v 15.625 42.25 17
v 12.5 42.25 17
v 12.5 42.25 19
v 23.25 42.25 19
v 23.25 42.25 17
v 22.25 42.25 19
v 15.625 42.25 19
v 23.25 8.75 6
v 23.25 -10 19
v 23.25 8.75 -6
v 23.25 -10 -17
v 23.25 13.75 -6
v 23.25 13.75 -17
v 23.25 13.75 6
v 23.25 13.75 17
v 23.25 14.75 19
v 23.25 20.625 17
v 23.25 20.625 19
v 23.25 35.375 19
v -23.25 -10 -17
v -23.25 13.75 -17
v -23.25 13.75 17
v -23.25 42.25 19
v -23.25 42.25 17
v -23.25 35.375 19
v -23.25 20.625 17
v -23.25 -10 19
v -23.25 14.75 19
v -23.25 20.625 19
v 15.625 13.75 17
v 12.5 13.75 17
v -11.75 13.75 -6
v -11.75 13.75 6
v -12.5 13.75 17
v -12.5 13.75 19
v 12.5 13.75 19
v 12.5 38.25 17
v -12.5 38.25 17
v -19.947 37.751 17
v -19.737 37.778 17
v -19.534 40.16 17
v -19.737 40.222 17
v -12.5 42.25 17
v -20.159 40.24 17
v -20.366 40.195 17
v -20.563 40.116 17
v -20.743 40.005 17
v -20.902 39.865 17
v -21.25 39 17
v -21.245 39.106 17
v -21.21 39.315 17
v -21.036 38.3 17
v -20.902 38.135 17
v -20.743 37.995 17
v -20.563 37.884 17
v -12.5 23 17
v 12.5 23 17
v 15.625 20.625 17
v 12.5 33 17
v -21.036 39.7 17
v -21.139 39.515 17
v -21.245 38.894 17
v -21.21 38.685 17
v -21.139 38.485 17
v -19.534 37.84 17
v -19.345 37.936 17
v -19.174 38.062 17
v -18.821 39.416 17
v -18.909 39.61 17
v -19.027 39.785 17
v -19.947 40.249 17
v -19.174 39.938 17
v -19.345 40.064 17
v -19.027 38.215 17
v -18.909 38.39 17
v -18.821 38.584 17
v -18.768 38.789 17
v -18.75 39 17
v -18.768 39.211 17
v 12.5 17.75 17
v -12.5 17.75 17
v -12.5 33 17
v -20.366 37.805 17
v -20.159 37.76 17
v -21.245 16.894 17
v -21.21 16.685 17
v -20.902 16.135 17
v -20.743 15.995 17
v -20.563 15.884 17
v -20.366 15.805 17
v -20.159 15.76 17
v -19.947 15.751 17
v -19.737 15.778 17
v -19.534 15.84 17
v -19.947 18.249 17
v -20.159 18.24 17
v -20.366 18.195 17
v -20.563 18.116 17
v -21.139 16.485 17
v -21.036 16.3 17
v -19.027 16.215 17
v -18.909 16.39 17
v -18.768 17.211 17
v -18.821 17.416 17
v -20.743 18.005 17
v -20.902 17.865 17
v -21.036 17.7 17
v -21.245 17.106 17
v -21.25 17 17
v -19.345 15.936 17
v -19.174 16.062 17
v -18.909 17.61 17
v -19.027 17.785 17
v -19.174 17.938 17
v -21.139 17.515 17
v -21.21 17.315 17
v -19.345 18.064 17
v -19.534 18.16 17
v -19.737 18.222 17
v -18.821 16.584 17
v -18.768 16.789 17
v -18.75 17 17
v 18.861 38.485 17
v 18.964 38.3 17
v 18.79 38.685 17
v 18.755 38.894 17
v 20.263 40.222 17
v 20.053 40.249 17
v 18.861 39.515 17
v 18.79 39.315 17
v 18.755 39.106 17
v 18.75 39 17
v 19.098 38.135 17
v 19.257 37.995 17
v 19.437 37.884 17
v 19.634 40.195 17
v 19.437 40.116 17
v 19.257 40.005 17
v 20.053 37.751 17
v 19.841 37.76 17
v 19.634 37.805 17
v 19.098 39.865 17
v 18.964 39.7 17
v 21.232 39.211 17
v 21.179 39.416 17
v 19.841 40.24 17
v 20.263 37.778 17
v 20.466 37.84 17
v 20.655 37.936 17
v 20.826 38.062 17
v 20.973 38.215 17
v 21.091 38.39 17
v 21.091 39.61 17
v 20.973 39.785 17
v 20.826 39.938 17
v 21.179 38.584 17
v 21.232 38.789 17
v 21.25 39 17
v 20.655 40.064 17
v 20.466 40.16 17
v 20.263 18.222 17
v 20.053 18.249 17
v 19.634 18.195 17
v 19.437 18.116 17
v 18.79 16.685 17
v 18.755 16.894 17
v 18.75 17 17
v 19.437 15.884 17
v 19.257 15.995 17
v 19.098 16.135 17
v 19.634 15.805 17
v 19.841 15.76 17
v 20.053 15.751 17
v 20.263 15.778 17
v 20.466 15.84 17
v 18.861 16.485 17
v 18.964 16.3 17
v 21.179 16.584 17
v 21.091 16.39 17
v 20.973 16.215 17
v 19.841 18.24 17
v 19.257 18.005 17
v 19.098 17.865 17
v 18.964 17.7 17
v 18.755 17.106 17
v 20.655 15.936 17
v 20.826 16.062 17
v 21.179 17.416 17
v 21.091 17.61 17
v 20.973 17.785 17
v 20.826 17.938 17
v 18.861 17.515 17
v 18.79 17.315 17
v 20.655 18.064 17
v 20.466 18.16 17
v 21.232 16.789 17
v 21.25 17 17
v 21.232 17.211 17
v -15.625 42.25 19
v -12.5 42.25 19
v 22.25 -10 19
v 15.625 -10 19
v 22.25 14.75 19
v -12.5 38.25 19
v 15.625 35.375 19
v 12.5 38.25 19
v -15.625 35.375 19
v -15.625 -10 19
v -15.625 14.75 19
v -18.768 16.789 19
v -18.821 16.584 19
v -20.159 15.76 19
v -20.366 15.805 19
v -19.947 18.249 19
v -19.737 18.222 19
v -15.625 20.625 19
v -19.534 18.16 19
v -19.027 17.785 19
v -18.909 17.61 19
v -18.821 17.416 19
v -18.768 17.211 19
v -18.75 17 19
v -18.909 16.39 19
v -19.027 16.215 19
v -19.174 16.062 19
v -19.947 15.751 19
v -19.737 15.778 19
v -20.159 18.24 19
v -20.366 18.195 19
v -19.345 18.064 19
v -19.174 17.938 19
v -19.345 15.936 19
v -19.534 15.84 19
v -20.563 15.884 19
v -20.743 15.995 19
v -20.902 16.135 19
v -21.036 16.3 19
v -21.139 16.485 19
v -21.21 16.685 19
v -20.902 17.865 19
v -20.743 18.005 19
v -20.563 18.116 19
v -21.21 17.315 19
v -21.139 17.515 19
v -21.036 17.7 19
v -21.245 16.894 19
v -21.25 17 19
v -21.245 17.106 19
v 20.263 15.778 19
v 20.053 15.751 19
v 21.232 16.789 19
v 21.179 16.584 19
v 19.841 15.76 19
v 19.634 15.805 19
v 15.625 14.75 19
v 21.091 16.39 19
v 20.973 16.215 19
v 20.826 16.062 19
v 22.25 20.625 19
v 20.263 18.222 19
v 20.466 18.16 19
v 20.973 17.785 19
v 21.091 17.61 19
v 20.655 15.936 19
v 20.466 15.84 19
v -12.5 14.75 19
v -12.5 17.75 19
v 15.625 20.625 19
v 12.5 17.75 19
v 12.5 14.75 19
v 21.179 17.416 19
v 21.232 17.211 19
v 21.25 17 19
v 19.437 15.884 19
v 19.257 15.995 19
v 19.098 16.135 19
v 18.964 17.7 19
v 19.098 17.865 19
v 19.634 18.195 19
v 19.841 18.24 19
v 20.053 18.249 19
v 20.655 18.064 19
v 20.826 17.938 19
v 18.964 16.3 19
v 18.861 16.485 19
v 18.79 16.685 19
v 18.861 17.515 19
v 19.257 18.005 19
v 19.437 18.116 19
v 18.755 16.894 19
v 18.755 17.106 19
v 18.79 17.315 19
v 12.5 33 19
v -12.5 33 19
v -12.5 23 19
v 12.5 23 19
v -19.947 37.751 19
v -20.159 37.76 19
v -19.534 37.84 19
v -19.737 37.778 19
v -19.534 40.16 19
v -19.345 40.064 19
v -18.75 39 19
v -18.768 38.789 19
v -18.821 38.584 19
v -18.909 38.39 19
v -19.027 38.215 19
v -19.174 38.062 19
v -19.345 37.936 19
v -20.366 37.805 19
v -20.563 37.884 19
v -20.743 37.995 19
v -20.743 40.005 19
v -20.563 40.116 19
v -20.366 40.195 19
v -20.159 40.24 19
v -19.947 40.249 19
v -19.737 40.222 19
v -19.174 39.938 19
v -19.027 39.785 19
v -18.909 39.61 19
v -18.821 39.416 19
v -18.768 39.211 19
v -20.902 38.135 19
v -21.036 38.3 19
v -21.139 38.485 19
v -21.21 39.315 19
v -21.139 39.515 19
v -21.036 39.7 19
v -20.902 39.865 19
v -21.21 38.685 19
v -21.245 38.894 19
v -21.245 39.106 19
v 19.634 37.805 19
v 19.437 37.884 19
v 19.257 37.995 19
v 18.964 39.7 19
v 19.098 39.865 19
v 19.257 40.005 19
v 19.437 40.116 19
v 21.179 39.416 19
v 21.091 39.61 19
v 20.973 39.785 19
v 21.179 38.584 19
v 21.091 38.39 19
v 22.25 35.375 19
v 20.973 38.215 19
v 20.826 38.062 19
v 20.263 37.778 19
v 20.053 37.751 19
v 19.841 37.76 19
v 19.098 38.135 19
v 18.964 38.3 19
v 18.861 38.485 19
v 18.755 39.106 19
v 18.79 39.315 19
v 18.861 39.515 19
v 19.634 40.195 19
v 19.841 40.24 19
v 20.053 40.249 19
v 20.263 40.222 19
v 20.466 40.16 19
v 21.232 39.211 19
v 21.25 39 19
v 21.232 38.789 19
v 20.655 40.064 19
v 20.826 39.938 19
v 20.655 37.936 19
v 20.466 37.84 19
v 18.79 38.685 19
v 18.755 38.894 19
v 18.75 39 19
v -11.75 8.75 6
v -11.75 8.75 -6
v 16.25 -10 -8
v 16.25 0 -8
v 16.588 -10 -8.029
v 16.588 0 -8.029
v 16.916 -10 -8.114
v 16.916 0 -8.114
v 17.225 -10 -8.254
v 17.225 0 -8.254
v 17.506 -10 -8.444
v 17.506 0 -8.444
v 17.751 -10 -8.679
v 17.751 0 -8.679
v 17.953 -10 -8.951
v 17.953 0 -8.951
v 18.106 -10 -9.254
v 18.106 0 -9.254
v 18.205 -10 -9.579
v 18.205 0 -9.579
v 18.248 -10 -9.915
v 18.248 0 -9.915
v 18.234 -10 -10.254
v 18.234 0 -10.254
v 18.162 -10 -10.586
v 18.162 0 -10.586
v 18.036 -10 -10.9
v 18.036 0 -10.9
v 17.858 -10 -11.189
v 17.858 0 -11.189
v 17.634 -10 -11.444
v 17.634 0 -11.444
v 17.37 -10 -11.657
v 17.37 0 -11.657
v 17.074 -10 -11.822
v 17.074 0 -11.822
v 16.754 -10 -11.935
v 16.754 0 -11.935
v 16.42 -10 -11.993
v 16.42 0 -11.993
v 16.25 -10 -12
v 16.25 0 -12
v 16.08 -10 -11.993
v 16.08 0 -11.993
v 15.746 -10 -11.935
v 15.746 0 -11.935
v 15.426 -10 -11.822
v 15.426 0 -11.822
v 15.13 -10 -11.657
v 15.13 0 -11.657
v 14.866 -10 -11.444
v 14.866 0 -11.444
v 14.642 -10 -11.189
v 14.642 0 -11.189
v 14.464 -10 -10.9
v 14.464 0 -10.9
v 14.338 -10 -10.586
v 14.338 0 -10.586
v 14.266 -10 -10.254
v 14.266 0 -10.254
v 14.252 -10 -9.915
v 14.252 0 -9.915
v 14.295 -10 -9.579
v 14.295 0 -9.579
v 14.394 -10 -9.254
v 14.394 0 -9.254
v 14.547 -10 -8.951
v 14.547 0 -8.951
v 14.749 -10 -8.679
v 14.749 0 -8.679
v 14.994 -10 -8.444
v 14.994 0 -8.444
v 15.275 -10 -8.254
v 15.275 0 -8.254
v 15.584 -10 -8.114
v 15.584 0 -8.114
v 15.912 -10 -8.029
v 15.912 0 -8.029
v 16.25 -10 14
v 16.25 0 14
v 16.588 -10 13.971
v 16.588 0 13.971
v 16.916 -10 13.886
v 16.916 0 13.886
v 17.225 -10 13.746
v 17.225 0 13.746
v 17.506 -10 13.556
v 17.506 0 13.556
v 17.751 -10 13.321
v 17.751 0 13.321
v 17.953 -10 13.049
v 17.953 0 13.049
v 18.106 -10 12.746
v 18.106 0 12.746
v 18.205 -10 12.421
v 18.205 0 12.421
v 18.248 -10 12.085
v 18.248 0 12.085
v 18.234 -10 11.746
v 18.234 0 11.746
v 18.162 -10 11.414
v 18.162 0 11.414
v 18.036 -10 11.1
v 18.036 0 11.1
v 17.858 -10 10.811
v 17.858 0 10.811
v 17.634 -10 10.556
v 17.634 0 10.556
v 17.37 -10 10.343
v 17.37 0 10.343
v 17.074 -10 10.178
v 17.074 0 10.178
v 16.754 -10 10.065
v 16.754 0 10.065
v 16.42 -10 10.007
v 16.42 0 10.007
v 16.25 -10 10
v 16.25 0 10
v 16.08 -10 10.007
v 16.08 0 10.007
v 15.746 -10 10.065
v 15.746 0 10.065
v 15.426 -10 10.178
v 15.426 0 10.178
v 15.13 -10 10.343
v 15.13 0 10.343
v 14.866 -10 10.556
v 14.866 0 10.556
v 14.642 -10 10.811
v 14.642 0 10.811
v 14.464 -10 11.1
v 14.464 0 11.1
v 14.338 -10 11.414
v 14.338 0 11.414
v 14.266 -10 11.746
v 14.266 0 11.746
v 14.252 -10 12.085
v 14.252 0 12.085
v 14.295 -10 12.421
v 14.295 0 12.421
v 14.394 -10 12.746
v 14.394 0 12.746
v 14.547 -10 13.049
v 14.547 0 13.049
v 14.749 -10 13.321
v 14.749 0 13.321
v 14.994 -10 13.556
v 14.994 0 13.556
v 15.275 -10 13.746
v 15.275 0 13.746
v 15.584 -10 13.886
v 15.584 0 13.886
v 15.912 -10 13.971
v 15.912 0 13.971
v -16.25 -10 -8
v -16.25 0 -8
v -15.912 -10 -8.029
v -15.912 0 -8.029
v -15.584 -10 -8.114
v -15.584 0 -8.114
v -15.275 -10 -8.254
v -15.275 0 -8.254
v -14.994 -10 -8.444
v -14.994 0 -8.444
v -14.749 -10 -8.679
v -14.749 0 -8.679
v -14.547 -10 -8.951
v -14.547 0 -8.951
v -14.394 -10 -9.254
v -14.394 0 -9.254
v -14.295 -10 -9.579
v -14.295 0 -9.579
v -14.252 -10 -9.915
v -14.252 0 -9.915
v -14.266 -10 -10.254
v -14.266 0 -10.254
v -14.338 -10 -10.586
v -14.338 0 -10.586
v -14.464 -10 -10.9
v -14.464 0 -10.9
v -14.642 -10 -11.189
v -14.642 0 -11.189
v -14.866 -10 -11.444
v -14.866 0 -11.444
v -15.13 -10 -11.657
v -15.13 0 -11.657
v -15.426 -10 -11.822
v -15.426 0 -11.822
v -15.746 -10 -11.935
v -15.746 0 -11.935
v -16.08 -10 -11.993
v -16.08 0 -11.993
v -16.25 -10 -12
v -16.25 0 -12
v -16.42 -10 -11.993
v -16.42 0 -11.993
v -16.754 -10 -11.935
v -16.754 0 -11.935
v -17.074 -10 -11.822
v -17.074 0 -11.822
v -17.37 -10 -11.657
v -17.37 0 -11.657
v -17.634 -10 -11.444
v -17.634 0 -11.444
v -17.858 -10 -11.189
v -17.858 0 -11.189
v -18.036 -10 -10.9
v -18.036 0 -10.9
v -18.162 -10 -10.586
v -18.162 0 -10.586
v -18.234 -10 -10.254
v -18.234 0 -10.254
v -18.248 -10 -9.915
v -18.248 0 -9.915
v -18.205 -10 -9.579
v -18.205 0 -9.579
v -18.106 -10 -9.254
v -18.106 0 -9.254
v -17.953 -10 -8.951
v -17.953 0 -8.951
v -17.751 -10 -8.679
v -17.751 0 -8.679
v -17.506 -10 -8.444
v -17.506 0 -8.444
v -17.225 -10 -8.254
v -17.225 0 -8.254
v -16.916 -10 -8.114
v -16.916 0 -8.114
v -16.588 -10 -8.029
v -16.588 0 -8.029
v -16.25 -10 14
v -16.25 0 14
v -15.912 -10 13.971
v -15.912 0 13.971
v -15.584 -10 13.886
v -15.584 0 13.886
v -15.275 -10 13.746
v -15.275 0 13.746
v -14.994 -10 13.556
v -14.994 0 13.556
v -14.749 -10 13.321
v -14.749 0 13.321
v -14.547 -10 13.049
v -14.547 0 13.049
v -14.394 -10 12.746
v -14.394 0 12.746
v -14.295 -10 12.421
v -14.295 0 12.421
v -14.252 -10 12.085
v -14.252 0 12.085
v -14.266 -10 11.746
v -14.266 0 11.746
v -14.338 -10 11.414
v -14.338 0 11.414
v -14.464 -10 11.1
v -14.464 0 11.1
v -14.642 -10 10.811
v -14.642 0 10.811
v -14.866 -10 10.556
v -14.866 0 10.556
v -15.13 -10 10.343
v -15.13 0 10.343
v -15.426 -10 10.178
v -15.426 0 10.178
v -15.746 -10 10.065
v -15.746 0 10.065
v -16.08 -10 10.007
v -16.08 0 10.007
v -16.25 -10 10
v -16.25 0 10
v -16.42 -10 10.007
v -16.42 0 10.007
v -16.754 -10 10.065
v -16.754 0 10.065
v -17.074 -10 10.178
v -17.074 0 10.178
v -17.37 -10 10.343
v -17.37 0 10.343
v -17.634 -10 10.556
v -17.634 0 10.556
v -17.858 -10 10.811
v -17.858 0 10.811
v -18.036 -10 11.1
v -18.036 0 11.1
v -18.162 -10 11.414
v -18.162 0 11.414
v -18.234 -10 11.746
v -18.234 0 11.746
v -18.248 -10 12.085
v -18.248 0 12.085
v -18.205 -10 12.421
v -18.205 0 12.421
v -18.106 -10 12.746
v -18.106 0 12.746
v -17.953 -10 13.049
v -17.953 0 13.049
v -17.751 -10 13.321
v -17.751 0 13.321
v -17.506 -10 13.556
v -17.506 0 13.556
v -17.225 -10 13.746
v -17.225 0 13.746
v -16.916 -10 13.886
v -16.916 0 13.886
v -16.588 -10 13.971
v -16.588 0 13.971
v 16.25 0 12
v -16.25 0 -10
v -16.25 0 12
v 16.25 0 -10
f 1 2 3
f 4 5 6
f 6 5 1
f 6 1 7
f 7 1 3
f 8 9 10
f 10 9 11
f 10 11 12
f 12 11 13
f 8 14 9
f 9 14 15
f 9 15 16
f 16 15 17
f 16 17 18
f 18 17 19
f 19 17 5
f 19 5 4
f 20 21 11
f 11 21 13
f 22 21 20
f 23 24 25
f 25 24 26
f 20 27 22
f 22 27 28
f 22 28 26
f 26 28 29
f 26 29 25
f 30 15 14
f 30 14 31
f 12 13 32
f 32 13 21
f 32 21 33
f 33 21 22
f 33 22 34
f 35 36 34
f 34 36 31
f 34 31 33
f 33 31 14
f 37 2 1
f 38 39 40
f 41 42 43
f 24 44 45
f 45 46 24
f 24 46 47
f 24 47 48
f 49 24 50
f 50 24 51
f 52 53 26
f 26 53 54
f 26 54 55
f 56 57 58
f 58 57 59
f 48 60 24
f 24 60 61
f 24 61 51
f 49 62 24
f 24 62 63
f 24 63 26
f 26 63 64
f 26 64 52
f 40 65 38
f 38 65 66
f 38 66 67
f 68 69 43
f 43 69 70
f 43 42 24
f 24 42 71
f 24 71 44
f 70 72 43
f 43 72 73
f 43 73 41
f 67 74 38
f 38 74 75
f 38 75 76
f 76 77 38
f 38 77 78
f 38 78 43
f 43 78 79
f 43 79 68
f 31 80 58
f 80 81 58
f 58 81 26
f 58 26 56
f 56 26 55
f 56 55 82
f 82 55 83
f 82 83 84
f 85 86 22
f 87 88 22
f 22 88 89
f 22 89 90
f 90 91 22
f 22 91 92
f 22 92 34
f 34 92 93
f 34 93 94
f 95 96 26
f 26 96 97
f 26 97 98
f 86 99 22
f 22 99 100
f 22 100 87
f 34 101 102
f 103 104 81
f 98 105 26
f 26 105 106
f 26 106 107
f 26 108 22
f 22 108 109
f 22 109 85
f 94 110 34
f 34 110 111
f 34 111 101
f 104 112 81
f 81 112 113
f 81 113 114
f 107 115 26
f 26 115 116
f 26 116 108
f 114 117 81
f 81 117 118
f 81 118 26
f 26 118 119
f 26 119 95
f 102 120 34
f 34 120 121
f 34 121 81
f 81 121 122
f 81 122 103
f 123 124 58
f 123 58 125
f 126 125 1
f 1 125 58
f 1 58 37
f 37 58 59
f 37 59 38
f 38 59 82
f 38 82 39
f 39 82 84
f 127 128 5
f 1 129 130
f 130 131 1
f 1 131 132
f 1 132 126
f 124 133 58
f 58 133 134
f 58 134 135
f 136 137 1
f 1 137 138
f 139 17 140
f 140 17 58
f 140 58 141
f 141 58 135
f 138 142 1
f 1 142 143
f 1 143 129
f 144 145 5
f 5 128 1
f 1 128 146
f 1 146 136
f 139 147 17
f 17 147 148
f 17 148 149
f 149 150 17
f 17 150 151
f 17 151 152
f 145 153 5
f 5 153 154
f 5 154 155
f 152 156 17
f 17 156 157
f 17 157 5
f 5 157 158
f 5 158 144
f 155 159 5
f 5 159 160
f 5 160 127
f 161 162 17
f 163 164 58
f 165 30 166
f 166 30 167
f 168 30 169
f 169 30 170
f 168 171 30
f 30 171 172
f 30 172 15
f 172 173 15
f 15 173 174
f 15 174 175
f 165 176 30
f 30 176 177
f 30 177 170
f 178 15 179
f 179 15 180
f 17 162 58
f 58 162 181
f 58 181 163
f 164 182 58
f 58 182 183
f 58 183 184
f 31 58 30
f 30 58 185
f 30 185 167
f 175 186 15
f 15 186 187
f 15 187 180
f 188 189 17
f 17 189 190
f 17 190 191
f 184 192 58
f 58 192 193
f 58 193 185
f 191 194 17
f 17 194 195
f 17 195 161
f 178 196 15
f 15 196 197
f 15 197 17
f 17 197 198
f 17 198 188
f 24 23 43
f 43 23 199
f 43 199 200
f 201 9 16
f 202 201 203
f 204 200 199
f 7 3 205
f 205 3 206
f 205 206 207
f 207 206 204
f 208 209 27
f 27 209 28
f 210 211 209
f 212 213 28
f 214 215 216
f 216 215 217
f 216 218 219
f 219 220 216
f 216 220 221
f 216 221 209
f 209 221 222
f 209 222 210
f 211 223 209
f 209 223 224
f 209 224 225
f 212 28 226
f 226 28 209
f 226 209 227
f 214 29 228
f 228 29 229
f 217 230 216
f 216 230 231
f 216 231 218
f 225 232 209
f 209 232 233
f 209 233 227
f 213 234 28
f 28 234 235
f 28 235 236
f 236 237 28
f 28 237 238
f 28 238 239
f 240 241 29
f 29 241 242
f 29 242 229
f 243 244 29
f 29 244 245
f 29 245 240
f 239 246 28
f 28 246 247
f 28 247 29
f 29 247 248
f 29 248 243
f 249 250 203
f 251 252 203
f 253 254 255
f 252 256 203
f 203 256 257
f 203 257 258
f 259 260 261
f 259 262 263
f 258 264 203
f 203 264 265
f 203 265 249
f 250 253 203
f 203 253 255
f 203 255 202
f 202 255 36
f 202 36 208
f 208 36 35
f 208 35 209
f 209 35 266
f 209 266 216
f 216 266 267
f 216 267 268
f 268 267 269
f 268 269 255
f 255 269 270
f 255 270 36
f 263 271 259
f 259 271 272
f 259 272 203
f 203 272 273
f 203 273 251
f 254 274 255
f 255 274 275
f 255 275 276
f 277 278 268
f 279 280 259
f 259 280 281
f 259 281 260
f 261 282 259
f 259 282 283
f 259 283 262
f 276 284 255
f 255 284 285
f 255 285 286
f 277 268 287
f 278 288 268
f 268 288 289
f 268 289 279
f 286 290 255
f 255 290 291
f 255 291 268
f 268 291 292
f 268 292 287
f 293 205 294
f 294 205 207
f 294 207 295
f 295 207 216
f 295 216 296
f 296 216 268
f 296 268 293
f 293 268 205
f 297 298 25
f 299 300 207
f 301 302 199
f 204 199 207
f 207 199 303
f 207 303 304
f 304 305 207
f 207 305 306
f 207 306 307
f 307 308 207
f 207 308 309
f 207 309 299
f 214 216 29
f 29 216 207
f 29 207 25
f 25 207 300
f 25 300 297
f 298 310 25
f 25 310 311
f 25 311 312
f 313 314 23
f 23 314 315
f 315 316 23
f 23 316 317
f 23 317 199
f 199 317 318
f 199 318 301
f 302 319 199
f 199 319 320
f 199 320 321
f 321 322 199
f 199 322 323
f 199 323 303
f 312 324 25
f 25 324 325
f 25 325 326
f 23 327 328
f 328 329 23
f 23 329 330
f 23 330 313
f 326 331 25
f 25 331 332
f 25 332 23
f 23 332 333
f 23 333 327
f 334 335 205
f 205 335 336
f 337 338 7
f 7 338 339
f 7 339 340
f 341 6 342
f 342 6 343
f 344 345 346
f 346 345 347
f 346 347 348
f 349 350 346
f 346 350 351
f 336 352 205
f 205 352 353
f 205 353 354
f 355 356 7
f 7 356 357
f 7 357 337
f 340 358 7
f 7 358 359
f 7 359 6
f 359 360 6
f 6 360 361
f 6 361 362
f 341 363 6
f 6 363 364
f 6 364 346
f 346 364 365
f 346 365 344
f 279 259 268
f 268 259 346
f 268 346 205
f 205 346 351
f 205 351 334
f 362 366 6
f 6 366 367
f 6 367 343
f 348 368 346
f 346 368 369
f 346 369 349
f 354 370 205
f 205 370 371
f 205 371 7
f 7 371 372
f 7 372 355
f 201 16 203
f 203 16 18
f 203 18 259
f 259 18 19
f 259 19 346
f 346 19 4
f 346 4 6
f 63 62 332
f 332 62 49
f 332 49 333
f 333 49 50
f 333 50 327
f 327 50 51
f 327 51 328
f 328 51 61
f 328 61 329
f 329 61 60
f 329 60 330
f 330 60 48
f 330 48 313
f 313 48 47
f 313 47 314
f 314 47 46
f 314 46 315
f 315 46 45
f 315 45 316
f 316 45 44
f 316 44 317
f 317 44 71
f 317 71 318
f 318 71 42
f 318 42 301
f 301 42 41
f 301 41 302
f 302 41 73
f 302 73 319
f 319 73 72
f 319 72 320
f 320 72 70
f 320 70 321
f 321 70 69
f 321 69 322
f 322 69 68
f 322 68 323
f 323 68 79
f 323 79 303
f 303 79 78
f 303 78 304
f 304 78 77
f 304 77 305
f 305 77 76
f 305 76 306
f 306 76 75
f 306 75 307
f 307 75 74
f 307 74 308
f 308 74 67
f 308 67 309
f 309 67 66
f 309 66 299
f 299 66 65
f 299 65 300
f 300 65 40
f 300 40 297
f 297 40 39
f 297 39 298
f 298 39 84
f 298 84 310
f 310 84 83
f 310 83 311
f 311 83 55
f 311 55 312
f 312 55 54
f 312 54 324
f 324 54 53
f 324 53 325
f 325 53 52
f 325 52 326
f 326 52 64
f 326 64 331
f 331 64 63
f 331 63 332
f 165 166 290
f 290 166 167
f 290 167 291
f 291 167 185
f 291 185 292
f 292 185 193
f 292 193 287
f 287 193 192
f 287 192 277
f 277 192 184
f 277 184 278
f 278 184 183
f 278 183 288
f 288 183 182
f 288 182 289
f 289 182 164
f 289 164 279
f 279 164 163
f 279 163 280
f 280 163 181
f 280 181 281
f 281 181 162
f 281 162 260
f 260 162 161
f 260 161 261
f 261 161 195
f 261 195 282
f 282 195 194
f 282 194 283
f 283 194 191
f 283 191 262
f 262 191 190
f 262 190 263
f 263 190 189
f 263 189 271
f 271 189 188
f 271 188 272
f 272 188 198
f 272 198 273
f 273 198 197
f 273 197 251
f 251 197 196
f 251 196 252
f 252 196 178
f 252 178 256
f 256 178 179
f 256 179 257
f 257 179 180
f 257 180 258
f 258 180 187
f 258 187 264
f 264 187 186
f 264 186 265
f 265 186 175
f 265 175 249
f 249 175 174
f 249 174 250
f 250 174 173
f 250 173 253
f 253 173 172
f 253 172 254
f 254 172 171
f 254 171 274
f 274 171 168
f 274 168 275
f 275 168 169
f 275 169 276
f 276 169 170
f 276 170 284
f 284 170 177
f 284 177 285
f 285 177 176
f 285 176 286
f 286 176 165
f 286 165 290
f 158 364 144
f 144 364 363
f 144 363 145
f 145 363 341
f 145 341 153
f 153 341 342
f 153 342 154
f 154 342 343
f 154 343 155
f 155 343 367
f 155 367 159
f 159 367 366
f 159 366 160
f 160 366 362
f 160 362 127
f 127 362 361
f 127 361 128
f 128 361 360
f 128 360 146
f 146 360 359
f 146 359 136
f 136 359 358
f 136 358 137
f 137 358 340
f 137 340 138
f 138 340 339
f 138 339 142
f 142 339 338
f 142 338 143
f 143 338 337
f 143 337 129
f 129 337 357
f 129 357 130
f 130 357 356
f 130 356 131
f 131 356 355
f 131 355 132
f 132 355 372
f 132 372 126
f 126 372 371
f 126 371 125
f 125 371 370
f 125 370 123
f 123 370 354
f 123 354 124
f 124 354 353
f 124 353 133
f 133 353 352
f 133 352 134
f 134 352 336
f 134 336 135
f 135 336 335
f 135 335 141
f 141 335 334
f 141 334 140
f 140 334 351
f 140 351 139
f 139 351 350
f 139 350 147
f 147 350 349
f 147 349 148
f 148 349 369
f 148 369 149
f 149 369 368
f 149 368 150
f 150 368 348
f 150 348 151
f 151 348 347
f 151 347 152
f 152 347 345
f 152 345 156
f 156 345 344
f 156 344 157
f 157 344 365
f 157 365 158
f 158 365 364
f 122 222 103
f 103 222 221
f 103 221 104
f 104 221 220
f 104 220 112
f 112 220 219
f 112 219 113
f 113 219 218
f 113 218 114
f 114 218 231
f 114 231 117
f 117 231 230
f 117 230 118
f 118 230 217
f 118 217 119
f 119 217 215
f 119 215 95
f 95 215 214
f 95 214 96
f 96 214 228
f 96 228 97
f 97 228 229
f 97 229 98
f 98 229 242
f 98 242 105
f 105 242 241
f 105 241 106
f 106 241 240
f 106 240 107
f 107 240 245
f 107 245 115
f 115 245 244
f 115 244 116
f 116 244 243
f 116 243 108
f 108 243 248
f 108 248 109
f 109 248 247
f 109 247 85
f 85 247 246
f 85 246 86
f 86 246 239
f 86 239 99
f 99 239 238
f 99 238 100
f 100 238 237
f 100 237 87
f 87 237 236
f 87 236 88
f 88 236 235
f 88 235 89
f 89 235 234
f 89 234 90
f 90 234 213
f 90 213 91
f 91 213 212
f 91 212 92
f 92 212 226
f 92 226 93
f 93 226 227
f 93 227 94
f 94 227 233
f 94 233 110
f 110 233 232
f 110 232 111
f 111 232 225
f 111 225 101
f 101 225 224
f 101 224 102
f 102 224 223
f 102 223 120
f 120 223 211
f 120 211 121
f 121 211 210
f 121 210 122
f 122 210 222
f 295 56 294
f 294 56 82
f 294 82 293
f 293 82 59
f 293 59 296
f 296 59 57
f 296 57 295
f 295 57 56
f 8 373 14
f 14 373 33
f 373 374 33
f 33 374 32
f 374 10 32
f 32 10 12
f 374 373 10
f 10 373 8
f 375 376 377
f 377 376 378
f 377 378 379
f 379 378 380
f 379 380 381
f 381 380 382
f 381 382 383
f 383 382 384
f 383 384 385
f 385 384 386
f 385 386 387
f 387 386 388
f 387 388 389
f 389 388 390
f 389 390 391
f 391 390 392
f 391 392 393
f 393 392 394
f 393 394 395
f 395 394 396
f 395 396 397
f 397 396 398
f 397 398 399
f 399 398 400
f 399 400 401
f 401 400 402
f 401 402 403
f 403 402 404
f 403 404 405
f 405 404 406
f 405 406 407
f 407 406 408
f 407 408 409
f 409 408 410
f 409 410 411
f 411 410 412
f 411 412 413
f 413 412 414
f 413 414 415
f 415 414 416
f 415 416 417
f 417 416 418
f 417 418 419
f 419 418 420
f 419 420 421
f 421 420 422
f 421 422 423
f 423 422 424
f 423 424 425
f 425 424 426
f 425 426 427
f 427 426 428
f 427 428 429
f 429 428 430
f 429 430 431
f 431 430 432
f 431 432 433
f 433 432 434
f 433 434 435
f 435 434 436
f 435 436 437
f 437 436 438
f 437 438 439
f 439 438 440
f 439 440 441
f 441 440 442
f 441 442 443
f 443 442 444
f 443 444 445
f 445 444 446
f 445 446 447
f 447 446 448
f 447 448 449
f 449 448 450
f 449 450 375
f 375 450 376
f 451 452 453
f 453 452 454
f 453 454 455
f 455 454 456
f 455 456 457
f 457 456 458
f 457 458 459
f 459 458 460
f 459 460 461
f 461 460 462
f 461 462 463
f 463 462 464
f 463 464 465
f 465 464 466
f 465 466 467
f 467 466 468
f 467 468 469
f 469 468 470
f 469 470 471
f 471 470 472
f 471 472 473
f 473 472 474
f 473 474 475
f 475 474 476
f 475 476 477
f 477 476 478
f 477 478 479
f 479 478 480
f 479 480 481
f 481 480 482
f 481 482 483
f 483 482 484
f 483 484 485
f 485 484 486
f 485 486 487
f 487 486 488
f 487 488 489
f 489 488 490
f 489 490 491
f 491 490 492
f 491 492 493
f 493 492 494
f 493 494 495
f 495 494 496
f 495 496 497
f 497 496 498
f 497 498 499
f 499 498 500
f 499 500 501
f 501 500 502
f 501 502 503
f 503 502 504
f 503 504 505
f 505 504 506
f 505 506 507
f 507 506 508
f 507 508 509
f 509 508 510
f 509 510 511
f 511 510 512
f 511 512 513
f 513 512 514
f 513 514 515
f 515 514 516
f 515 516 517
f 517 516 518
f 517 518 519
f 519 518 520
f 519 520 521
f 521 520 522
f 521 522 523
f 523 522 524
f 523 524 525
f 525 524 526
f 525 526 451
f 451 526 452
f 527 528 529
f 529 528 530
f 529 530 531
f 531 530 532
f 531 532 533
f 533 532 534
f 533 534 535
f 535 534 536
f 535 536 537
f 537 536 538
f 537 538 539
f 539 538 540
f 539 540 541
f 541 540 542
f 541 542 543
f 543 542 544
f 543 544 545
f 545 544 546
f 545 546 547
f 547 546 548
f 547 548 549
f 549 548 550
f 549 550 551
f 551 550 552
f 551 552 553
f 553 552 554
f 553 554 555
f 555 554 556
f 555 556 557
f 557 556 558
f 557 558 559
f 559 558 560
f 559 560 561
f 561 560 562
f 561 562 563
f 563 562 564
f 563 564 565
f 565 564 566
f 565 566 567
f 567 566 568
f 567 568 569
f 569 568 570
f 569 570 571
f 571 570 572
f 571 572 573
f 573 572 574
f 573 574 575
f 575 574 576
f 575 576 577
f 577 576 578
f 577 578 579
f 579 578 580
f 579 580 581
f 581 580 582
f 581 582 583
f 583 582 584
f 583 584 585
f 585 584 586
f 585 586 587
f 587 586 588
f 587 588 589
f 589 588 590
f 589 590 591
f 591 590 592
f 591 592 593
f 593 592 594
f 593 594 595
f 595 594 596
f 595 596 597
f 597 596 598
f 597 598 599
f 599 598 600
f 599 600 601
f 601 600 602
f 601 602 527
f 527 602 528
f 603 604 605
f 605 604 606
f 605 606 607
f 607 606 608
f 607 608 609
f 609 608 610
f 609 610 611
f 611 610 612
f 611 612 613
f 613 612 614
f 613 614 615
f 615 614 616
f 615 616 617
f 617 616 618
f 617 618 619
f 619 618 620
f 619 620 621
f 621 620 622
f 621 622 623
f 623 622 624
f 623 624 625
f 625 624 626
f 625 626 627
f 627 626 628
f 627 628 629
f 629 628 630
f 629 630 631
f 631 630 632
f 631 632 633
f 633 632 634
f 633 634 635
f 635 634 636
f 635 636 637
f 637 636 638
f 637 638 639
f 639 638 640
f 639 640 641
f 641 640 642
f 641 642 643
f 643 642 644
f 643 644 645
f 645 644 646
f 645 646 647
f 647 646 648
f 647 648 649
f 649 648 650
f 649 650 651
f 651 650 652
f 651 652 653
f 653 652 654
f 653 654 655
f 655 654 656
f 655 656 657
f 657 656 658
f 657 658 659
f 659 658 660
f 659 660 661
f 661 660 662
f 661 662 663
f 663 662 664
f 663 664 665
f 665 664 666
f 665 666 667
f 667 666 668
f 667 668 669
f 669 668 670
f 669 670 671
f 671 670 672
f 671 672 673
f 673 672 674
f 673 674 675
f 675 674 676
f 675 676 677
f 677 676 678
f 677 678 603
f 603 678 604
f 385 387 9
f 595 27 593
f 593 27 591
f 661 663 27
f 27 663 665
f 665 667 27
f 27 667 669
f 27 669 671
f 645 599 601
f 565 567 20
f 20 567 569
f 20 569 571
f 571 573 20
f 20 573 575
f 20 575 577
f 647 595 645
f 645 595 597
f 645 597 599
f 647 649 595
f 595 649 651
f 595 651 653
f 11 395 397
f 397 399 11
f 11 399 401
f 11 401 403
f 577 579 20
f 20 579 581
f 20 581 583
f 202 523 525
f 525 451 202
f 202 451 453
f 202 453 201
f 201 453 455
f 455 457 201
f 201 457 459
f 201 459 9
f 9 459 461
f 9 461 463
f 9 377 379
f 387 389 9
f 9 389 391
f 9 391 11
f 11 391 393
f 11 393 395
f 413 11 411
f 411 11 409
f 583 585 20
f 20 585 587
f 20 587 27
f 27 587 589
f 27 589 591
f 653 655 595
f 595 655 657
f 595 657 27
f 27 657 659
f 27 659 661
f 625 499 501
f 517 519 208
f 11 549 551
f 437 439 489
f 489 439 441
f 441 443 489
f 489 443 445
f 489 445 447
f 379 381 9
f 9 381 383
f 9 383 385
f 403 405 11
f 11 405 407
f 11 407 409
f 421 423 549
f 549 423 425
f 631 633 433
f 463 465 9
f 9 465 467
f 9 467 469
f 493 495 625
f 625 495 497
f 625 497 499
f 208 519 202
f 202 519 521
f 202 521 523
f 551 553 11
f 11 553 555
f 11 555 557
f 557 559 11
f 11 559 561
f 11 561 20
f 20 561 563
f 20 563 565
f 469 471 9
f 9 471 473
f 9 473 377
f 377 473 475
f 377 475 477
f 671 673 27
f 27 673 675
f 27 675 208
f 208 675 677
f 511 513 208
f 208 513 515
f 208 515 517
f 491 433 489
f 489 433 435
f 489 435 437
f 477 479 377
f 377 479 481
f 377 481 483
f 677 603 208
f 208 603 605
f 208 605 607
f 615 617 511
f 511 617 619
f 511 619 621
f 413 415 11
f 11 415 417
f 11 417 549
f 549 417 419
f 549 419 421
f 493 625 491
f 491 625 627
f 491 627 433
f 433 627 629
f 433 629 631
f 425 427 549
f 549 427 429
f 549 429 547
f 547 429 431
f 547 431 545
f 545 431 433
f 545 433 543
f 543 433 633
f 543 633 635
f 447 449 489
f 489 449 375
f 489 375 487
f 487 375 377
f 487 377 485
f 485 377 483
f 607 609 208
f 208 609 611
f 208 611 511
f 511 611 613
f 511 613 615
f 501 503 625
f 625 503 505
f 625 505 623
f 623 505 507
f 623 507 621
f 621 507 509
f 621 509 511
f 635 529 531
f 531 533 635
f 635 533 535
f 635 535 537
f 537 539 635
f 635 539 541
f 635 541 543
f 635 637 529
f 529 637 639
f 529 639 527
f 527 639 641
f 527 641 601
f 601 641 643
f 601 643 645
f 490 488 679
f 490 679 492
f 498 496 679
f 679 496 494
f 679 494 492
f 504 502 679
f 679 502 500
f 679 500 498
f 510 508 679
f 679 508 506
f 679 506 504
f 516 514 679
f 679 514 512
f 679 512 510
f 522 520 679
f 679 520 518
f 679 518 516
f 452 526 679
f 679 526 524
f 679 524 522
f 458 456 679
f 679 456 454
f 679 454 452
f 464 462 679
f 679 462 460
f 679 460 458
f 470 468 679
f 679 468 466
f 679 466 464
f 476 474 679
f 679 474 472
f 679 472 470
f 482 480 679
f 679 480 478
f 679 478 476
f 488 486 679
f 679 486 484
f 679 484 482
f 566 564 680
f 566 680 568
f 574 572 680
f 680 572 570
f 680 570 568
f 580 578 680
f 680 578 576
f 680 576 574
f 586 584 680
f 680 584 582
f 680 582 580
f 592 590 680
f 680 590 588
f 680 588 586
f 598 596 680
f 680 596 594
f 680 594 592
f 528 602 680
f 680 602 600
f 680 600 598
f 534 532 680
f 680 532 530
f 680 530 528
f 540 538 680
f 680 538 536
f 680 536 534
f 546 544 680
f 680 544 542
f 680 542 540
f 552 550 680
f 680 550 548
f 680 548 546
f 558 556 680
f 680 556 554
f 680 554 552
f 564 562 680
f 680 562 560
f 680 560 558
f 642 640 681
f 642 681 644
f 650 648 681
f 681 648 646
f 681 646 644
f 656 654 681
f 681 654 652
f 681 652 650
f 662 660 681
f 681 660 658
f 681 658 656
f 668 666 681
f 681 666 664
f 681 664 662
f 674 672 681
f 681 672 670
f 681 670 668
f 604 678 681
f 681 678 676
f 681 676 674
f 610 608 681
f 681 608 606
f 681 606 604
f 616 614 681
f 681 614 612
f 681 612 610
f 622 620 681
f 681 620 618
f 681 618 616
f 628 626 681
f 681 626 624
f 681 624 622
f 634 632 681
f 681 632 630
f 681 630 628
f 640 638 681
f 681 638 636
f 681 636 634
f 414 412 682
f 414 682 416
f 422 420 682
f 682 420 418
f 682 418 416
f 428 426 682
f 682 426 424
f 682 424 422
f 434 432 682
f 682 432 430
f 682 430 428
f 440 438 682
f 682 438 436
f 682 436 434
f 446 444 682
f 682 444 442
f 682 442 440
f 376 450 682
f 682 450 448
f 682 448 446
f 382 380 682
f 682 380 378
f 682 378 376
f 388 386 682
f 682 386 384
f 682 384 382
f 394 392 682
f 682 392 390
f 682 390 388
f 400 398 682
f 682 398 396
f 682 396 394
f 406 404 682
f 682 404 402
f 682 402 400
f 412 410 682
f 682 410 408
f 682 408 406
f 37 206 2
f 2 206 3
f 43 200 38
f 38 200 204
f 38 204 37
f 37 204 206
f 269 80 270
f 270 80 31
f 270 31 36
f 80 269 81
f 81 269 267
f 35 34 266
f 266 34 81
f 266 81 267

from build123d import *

# Parameters (mm, degrees)
SKETCH1_W           = 46.5
SKETCH1_H           = 34
BOSS_EXTRUDE1_DEPTH = 13.75
SKETCH2_W           = 46.5
SKETCH2_H           = 42.25
BOSS_EXTRUDE2_DEPTH = 2
CUT_EXTRUDE1_REACH  = 62.18
SKETCH3_R           = 1.25
SKETCH3_W           = 25
SKETCH3_H           = 10
SKETCH4_W           = 35
SKETCH4_H           = 12
CUT_EXTRUDE2_DEPTH  = 5
SKETCH6_W           = 46.5
SKETCH6_H           = 36
SKETCH6_R           = 2
BOSS_EXTRUDE3_DEPTH = 10
SKETCH7_W           = 25
SKETCH7_H           = 4
CUT_EXTRUDE3_DEPTH  = 10


with BuildPart() as part:
    # Sketch1 → Boss-Extrude1 (new body)
    with BuildSketch(Plane(origin=(0, 0, 0), x_dir=(1, 0, 0), z_dir=(0, 1, 0))):
        Rectangle(SKETCH1_W, SKETCH1_H)
    extrude(amount=BOSS_EXTRUDE1_DEPTH)

    # Sketch2 → Boss-Extrude2 (add)
    with BuildSketch(Plane.XY.offset(17)):
        with Locations((0, 21.125)):
            Rectangle(SKETCH2_W, SKETCH2_H)
    extrude(amount=BOSS_EXTRUDE2_DEPTH)

    # Sketch3 → Cut-Extrude1 (cut, up to next)
    with BuildSketch(Plane.XY.offset(19), mode=Mode.PRIVATE) as cut_extrude1_sk1:
        with Locations((-20, 39)):
            Circle(SKETCH3_R)
    cut_extrude1_tool1 = extrude(cut_extrude1_sk1.sketch, amount=-CUT_EXTRUDE1_REACH, mode=Mode.PRIVATE) & part.part
    # Sketch3 → Cut-Extrude1 (cut, up to next)
    with BuildSketch(Plane.XY.offset(19), mode=Mode.PRIVATE) as cut_extrude1_sk2:
        with Locations(Location((20, 39, 0), (0, 0, 180))):
            Circle(SKETCH3_R)
    cut_extrude1_tool2 = extrude(cut_extrude1_sk2.sketch, amount=-CUT_EXTRUDE1_REACH, mode=Mode.PRIVATE) & part.part
    # Sketch3 → Cut-Extrude1 (cut, up to next)
    with BuildSketch(Plane.XY.offset(19), mode=Mode.PRIVATE) as cut_extrude1_sk3:
        with Locations((20, 17)):
            Circle(SKETCH3_R)
    cut_extrude1_tool3 = extrude(cut_extrude1_sk3.sketch, amount=-CUT_EXTRUDE1_REACH, mode=Mode.PRIVATE) & part.part
    # Sketch3 → Cut-Extrude1 (cut, up to next)
    with BuildSketch(Plane.XY.offset(19), mode=Mode.PRIVATE) as cut_extrude1_sk4:
        with Locations(Location((-20, 17, 0), (0, 0, 180))):
            Circle(SKETCH3_R)
    cut_extrude1_tool4 = extrude(cut_extrude1_sk4.sketch, amount=-CUT_EXTRUDE1_REACH, mode=Mode.PRIVATE) & part.part
    # Sketch3 → Cut-Extrude1 (cut, up to next)
    with BuildSketch(Plane.XY.offset(19), mode=Mode.PRIVATE) as cut_extrude1_sk5:
        with Locations((0, 28)):
            Rectangle(SKETCH3_W, SKETCH3_H)
    cut_extrude1_tool5 = extrude(cut_extrude1_sk5.sketch, amount=-CUT_EXTRUDE1_REACH, mode=Mode.PRIVATE) & part.part
    add(cut_extrude1_tool1.solids().sort_by_distance((-20, 39, 19))[0], mode=Mode.SUBTRACT)
    add(cut_extrude1_tool2.solids().sort_by_distance((20, 39, 19))[0], mode=Mode.SUBTRACT)
    add(cut_extrude1_tool3.solids().sort_by_distance((20, 17, 19))[0], mode=Mode.SUBTRACT)
    add(cut_extrude1_tool4.solids().sort_by_distance((-20, 17, 19))[0], mode=Mode.SUBTRACT)
    add(cut_extrude1_tool5.solids().sort_by_distance((0, 28, 19))[0], mode=Mode.SUBTRACT)

    # Sketch4 → Cut-Extrude2 (cut)
    with BuildSketch(Plane(origin=(0, 13.75, 0), x_dir=(1, 0, 0), z_dir=(0, 1, 0))):
        with Locations((5.75, 0)):
            Rectangle(SKETCH4_W, SKETCH4_H)
    extrude(amount=-CUT_EXTRUDE2_DEPTH, mode=Mode.SUBTRACT)

    # Sketch6 → Boss-Extrude3 (add)
    with BuildSketch(Plane.XZ):
        with Locations((0, 1)):
            Rectangle(SKETCH6_W, SKETCH6_H)
        with Locations(Location((16.25, -10, 0), (0, 0, 270))):
            Circle(SKETCH6_R, mode=Mode.SUBTRACT)
        with Locations(Location((-16.25, -10, 0), (0, 0, 270))):
            Circle(SKETCH6_R, mode=Mode.SUBTRACT)
        with Locations(Location((-16.25, 12, 0), (0, 0, 270))):
            Circle(SKETCH6_R, mode=Mode.SUBTRACT)
        with Locations(Location((16.25, 12, 0), (0, 0, 270))):
            Circle(SKETCH6_R, mode=Mode.SUBTRACT)
    extrude(amount=BOSS_EXTRUDE3_DEPTH)

    # Sketch7 → Cut-Extrude3 (cut)
    with BuildSketch(Plane(origin=(0, 0, 17), x_dir=(-1, 0, 0), z_dir=(0, 0, -1))):
        with Locations((0, 15.75)):
            Rectangle(SKETCH7_W, SKETCH7_H)
        with Locations((0, 40.25)):
            Rectangle(SKETCH7_W, SKETCH7_H)
    extrude(amount=-CUT_EXTRUDE3_DEPTH, mode=Mode.SUBTRACT)


solid = part.part
